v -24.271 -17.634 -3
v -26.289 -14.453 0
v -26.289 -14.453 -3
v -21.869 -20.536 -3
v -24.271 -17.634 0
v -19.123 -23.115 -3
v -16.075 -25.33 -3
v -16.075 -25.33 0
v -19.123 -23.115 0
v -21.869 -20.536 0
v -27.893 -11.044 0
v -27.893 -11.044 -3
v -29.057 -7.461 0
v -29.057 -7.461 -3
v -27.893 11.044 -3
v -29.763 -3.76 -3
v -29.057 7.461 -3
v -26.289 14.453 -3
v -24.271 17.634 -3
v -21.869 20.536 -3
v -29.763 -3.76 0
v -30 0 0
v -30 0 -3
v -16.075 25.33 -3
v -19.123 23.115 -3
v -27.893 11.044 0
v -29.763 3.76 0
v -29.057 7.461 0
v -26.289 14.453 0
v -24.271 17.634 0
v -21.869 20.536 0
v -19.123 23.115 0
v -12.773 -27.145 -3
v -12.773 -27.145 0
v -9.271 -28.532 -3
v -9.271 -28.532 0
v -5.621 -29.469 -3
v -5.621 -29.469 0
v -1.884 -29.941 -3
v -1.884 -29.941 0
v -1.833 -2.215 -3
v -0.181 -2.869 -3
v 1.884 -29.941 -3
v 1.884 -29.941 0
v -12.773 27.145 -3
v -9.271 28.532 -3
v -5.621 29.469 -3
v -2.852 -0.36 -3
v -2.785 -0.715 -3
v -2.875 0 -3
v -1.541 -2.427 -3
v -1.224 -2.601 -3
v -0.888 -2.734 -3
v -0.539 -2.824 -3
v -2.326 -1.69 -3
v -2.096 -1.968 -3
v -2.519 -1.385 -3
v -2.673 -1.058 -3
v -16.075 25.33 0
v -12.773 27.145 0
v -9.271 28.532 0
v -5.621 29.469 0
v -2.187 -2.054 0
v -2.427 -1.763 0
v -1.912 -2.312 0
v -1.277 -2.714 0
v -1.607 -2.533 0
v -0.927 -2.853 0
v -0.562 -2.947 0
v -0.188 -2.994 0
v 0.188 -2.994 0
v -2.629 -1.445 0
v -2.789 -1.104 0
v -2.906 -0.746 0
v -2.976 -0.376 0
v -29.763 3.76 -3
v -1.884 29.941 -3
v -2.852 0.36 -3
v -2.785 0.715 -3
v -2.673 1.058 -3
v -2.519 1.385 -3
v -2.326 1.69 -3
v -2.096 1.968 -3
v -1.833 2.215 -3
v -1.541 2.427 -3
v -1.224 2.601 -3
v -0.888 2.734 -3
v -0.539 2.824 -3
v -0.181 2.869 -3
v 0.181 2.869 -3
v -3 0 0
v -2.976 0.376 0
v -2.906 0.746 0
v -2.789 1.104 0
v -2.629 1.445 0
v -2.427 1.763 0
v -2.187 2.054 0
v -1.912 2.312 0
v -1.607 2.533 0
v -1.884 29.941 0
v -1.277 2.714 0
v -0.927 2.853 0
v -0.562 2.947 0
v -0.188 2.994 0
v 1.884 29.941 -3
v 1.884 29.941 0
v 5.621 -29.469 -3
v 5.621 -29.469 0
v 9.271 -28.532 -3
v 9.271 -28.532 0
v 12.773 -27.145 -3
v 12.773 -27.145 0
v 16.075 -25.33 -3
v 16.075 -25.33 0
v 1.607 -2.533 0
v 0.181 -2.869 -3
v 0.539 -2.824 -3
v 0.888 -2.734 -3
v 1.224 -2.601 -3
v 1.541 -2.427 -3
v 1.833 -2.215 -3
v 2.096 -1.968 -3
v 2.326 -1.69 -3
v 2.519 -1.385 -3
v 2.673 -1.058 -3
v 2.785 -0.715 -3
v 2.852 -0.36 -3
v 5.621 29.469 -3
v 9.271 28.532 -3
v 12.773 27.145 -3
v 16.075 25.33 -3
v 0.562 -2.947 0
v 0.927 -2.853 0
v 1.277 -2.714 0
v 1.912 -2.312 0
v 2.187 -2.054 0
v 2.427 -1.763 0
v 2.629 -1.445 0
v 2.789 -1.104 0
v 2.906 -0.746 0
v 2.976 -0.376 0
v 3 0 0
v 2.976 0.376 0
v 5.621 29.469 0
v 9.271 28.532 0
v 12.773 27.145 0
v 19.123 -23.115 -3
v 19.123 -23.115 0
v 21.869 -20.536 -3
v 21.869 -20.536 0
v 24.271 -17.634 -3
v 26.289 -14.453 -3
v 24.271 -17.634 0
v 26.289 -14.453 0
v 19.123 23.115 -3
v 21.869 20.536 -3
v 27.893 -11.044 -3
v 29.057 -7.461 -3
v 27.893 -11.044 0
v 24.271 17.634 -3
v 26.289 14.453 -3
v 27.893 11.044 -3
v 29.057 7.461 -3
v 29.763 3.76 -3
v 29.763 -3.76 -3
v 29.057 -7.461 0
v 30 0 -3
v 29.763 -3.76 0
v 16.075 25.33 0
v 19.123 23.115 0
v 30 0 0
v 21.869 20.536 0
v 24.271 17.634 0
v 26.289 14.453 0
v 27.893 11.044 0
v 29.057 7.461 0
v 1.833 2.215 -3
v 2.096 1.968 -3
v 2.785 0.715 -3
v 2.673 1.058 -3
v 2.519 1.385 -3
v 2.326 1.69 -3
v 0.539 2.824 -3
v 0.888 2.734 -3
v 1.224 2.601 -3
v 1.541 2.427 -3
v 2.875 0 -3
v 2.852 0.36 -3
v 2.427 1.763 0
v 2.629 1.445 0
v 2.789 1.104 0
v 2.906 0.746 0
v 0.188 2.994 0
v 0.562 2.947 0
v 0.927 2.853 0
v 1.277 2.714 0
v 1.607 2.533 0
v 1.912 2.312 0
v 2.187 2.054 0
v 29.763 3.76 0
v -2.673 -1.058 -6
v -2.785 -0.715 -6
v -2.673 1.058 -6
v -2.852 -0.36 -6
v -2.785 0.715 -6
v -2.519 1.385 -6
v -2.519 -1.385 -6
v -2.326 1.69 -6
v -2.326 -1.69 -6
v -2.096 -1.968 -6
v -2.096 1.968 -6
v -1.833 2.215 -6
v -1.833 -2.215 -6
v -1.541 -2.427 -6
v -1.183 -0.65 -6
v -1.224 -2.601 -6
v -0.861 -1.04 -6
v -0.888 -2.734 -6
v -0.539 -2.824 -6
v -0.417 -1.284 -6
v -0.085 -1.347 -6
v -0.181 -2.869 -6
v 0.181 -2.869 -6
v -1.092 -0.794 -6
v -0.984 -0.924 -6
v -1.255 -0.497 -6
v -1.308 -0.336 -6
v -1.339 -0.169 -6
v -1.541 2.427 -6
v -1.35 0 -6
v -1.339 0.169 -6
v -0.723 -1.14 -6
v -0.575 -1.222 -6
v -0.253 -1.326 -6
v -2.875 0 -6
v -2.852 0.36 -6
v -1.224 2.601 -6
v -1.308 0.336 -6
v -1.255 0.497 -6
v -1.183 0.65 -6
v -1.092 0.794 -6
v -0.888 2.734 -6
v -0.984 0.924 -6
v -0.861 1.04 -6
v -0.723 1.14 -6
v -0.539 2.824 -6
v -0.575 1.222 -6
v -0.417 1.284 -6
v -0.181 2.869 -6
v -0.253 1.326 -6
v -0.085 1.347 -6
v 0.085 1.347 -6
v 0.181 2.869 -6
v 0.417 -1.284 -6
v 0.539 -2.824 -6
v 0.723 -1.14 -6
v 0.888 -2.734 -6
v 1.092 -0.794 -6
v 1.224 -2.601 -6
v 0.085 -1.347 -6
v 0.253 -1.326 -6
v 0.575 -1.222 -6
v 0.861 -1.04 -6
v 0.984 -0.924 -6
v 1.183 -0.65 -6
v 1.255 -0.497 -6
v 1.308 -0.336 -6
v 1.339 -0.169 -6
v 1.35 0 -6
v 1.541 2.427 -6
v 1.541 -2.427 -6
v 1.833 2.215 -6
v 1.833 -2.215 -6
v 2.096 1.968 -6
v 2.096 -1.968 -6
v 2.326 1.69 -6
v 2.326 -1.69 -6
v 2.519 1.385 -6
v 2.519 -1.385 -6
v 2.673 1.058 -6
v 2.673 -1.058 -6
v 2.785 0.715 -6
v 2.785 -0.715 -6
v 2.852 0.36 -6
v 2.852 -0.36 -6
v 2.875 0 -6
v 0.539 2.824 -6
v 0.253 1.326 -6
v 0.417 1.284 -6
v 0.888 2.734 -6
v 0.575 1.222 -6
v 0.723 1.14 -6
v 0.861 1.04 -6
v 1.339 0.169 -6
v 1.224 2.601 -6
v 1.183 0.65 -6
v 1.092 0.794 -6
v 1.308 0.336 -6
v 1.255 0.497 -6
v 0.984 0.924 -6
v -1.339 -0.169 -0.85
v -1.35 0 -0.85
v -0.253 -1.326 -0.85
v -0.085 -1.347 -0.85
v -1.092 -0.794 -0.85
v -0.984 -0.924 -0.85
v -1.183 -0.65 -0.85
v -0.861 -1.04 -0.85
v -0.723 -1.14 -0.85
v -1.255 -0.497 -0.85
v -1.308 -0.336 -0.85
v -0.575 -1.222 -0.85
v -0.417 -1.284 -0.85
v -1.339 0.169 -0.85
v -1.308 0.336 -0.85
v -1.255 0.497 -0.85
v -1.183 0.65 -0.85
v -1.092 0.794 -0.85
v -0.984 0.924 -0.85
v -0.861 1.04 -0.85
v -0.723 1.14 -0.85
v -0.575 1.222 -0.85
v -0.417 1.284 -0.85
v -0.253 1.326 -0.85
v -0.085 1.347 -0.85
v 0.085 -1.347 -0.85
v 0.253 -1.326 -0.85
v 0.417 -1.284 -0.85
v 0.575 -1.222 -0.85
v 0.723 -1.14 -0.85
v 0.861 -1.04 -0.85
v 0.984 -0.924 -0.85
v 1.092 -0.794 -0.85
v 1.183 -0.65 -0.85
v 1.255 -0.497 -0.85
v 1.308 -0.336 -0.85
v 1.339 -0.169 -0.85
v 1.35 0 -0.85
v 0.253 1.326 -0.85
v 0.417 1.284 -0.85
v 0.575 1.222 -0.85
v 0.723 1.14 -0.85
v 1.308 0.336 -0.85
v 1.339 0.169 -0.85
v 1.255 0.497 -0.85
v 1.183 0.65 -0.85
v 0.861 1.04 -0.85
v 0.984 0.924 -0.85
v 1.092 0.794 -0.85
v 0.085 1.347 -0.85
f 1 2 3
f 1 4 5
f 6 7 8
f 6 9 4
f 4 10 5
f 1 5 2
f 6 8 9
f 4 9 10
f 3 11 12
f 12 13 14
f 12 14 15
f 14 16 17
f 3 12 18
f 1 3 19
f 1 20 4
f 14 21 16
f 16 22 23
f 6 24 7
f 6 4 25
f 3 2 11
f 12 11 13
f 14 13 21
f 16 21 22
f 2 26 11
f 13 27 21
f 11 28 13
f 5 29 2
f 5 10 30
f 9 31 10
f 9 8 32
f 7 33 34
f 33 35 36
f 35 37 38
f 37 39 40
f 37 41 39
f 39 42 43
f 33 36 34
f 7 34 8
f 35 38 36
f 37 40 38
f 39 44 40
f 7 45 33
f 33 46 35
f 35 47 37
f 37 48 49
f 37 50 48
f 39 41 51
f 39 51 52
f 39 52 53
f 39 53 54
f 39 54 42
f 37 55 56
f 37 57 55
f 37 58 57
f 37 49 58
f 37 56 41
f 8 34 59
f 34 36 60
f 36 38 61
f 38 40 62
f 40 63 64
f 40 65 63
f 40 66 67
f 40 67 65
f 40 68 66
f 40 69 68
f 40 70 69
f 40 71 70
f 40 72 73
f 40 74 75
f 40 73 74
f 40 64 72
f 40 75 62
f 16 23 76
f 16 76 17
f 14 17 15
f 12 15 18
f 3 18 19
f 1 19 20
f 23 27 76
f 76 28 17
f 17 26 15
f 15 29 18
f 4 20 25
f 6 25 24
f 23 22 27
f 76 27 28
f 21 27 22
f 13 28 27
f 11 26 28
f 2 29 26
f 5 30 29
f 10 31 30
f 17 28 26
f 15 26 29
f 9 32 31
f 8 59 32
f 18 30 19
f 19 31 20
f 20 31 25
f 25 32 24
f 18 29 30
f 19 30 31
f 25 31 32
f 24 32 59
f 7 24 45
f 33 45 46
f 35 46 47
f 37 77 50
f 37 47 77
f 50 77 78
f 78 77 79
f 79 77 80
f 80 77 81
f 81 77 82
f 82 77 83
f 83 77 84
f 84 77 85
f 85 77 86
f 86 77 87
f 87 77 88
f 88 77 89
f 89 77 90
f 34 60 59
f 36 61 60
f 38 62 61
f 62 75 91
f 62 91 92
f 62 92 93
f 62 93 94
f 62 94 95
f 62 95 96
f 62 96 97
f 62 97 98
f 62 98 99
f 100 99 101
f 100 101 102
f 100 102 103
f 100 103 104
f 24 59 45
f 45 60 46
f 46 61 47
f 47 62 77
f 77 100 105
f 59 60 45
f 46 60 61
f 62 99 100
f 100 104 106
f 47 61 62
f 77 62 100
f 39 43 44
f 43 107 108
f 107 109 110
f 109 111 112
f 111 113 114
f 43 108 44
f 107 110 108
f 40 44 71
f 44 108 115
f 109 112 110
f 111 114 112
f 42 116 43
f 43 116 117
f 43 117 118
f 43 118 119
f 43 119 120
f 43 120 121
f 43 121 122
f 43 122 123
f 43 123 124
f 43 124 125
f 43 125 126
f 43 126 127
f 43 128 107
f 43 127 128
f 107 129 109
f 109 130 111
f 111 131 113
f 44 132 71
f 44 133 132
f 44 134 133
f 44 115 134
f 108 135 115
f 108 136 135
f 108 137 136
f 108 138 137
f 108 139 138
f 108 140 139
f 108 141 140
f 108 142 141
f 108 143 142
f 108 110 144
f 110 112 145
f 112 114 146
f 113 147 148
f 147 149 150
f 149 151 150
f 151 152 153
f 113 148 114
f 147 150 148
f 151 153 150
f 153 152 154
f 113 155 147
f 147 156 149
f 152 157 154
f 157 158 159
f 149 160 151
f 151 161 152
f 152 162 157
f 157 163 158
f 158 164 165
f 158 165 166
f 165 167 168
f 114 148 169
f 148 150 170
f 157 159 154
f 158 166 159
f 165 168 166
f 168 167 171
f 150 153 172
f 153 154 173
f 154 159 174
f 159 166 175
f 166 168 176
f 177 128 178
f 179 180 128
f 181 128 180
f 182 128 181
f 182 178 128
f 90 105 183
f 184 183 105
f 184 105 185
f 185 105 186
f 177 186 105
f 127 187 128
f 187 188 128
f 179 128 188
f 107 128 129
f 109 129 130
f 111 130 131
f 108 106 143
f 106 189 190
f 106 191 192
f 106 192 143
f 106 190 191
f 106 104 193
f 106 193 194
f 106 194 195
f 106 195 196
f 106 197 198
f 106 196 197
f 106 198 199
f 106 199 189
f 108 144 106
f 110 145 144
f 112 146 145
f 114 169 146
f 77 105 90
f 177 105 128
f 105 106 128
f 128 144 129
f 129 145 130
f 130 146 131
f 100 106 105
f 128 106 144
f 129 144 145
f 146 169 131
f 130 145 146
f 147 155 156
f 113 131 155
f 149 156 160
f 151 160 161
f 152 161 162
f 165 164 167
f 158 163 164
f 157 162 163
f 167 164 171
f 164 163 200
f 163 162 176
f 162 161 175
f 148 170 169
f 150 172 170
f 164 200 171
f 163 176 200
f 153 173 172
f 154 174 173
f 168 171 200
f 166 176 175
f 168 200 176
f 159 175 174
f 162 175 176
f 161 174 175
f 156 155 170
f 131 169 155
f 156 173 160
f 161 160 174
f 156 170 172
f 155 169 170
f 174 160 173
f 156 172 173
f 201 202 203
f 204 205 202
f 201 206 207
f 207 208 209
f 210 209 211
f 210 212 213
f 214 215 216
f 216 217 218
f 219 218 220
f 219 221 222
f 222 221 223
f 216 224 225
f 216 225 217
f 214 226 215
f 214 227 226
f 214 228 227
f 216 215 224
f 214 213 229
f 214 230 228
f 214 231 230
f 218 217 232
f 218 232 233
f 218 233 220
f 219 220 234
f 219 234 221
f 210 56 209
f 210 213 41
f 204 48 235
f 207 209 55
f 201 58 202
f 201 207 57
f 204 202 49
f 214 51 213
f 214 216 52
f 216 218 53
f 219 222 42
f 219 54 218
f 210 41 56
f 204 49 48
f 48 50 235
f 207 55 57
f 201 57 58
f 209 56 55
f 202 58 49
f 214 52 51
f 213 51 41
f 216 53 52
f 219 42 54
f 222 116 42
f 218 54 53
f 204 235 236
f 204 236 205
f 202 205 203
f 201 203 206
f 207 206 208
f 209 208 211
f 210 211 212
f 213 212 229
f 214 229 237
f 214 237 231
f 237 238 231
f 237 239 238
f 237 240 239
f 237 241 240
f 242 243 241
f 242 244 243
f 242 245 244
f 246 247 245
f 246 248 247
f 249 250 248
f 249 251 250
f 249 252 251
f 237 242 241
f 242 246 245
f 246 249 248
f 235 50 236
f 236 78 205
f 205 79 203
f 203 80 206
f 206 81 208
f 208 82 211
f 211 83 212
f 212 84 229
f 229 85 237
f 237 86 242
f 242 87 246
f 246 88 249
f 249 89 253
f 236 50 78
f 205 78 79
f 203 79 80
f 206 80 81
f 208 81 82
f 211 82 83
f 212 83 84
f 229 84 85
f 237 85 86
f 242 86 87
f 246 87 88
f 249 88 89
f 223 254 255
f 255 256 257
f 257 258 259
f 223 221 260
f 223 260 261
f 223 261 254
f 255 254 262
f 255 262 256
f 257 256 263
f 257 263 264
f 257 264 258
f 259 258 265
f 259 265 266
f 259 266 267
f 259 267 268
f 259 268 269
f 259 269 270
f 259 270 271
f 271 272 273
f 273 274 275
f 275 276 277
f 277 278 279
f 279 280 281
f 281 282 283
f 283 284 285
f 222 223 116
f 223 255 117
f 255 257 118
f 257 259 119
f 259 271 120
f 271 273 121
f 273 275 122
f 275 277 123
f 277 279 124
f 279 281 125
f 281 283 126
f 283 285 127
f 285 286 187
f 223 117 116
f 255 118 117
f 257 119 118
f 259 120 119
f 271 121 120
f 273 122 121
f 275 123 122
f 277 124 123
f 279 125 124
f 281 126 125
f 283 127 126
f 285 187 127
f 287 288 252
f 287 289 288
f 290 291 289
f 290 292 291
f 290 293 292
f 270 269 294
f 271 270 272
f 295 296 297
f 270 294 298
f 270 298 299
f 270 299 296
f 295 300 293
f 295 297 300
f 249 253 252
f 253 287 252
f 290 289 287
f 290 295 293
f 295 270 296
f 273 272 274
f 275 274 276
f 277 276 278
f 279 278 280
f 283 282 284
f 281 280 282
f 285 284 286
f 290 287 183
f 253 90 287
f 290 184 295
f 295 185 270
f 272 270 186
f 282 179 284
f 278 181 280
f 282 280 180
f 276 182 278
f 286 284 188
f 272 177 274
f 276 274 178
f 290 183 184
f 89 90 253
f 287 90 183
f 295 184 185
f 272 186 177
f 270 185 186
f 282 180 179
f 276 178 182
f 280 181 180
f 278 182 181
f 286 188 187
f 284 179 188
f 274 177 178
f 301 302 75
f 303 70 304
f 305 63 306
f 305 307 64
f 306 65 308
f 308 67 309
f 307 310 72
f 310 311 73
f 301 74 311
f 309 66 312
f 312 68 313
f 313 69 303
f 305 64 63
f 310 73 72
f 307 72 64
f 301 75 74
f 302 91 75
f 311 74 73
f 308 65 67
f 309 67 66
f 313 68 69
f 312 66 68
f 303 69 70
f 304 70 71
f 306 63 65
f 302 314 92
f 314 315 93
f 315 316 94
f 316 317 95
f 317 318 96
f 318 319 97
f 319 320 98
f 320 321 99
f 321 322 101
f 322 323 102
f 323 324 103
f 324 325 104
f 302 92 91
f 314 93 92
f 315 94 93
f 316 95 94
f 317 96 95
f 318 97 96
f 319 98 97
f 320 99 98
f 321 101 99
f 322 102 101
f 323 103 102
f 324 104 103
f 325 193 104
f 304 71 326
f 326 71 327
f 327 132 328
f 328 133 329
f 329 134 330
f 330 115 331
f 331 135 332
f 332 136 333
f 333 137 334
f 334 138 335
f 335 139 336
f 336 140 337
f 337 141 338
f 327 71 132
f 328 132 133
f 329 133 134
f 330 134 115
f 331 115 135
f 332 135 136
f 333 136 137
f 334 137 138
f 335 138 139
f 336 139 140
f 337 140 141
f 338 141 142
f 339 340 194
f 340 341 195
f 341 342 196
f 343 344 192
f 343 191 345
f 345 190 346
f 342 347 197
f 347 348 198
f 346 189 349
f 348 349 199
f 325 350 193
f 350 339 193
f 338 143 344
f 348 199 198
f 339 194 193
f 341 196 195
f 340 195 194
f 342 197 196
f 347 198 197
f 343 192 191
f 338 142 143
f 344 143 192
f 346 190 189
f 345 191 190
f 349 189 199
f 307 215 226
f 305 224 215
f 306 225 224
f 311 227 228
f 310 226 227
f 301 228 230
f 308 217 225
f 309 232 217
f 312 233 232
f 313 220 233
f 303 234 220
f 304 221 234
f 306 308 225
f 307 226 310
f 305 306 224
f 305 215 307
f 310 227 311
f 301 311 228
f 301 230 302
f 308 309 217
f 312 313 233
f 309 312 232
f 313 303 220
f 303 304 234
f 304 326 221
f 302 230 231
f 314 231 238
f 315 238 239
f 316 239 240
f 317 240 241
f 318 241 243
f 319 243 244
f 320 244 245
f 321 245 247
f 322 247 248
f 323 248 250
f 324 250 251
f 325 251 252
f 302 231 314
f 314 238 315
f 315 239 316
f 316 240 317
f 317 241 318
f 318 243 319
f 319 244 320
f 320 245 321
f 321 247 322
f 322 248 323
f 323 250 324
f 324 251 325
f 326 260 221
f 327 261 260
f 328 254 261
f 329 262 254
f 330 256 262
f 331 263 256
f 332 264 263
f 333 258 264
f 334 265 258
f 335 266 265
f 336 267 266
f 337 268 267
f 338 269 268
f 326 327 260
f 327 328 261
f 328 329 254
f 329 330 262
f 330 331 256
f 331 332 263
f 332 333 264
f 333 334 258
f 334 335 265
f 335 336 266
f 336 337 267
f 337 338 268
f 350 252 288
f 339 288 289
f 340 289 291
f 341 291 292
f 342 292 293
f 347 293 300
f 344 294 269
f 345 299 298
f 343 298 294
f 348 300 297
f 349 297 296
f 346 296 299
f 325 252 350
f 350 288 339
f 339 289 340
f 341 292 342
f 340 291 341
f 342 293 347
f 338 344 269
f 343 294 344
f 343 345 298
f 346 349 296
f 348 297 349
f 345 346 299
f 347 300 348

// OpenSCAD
$fn = 50;

difference() {
	union() {
		translate(v = [0, 0, -3.0]) {
			cylinder(h = 3, r = 30.0);
		}
		#translate(v = [0, 0, -6.0]) {
			cylinder(h = 6, r = 2.875);
		}
	}
	union() {
		translate(v = [0, 0, 0]) {
			rotate(a = [0, 0, 0]) {
				difference() {
					union() {
						translate(v = [0, 0, -6.0]) {
							cylinder(h = 6, r = 1.0);
						}
						translate(v = [0, 0, -0.85]) {
							cylinder(h = 0.85, r1 = 1.35, r2 = 3.0);
						}
						translate(v = [0, 0, -6.0]) {
							cylinder(h = 6, r = 1.35);
						}
						translate(v = [0, 0, -6.0]) {
							cylinder(h = 6, r = 1.0);
						}
					}
					union();
				}
			}
		}
	}
}
